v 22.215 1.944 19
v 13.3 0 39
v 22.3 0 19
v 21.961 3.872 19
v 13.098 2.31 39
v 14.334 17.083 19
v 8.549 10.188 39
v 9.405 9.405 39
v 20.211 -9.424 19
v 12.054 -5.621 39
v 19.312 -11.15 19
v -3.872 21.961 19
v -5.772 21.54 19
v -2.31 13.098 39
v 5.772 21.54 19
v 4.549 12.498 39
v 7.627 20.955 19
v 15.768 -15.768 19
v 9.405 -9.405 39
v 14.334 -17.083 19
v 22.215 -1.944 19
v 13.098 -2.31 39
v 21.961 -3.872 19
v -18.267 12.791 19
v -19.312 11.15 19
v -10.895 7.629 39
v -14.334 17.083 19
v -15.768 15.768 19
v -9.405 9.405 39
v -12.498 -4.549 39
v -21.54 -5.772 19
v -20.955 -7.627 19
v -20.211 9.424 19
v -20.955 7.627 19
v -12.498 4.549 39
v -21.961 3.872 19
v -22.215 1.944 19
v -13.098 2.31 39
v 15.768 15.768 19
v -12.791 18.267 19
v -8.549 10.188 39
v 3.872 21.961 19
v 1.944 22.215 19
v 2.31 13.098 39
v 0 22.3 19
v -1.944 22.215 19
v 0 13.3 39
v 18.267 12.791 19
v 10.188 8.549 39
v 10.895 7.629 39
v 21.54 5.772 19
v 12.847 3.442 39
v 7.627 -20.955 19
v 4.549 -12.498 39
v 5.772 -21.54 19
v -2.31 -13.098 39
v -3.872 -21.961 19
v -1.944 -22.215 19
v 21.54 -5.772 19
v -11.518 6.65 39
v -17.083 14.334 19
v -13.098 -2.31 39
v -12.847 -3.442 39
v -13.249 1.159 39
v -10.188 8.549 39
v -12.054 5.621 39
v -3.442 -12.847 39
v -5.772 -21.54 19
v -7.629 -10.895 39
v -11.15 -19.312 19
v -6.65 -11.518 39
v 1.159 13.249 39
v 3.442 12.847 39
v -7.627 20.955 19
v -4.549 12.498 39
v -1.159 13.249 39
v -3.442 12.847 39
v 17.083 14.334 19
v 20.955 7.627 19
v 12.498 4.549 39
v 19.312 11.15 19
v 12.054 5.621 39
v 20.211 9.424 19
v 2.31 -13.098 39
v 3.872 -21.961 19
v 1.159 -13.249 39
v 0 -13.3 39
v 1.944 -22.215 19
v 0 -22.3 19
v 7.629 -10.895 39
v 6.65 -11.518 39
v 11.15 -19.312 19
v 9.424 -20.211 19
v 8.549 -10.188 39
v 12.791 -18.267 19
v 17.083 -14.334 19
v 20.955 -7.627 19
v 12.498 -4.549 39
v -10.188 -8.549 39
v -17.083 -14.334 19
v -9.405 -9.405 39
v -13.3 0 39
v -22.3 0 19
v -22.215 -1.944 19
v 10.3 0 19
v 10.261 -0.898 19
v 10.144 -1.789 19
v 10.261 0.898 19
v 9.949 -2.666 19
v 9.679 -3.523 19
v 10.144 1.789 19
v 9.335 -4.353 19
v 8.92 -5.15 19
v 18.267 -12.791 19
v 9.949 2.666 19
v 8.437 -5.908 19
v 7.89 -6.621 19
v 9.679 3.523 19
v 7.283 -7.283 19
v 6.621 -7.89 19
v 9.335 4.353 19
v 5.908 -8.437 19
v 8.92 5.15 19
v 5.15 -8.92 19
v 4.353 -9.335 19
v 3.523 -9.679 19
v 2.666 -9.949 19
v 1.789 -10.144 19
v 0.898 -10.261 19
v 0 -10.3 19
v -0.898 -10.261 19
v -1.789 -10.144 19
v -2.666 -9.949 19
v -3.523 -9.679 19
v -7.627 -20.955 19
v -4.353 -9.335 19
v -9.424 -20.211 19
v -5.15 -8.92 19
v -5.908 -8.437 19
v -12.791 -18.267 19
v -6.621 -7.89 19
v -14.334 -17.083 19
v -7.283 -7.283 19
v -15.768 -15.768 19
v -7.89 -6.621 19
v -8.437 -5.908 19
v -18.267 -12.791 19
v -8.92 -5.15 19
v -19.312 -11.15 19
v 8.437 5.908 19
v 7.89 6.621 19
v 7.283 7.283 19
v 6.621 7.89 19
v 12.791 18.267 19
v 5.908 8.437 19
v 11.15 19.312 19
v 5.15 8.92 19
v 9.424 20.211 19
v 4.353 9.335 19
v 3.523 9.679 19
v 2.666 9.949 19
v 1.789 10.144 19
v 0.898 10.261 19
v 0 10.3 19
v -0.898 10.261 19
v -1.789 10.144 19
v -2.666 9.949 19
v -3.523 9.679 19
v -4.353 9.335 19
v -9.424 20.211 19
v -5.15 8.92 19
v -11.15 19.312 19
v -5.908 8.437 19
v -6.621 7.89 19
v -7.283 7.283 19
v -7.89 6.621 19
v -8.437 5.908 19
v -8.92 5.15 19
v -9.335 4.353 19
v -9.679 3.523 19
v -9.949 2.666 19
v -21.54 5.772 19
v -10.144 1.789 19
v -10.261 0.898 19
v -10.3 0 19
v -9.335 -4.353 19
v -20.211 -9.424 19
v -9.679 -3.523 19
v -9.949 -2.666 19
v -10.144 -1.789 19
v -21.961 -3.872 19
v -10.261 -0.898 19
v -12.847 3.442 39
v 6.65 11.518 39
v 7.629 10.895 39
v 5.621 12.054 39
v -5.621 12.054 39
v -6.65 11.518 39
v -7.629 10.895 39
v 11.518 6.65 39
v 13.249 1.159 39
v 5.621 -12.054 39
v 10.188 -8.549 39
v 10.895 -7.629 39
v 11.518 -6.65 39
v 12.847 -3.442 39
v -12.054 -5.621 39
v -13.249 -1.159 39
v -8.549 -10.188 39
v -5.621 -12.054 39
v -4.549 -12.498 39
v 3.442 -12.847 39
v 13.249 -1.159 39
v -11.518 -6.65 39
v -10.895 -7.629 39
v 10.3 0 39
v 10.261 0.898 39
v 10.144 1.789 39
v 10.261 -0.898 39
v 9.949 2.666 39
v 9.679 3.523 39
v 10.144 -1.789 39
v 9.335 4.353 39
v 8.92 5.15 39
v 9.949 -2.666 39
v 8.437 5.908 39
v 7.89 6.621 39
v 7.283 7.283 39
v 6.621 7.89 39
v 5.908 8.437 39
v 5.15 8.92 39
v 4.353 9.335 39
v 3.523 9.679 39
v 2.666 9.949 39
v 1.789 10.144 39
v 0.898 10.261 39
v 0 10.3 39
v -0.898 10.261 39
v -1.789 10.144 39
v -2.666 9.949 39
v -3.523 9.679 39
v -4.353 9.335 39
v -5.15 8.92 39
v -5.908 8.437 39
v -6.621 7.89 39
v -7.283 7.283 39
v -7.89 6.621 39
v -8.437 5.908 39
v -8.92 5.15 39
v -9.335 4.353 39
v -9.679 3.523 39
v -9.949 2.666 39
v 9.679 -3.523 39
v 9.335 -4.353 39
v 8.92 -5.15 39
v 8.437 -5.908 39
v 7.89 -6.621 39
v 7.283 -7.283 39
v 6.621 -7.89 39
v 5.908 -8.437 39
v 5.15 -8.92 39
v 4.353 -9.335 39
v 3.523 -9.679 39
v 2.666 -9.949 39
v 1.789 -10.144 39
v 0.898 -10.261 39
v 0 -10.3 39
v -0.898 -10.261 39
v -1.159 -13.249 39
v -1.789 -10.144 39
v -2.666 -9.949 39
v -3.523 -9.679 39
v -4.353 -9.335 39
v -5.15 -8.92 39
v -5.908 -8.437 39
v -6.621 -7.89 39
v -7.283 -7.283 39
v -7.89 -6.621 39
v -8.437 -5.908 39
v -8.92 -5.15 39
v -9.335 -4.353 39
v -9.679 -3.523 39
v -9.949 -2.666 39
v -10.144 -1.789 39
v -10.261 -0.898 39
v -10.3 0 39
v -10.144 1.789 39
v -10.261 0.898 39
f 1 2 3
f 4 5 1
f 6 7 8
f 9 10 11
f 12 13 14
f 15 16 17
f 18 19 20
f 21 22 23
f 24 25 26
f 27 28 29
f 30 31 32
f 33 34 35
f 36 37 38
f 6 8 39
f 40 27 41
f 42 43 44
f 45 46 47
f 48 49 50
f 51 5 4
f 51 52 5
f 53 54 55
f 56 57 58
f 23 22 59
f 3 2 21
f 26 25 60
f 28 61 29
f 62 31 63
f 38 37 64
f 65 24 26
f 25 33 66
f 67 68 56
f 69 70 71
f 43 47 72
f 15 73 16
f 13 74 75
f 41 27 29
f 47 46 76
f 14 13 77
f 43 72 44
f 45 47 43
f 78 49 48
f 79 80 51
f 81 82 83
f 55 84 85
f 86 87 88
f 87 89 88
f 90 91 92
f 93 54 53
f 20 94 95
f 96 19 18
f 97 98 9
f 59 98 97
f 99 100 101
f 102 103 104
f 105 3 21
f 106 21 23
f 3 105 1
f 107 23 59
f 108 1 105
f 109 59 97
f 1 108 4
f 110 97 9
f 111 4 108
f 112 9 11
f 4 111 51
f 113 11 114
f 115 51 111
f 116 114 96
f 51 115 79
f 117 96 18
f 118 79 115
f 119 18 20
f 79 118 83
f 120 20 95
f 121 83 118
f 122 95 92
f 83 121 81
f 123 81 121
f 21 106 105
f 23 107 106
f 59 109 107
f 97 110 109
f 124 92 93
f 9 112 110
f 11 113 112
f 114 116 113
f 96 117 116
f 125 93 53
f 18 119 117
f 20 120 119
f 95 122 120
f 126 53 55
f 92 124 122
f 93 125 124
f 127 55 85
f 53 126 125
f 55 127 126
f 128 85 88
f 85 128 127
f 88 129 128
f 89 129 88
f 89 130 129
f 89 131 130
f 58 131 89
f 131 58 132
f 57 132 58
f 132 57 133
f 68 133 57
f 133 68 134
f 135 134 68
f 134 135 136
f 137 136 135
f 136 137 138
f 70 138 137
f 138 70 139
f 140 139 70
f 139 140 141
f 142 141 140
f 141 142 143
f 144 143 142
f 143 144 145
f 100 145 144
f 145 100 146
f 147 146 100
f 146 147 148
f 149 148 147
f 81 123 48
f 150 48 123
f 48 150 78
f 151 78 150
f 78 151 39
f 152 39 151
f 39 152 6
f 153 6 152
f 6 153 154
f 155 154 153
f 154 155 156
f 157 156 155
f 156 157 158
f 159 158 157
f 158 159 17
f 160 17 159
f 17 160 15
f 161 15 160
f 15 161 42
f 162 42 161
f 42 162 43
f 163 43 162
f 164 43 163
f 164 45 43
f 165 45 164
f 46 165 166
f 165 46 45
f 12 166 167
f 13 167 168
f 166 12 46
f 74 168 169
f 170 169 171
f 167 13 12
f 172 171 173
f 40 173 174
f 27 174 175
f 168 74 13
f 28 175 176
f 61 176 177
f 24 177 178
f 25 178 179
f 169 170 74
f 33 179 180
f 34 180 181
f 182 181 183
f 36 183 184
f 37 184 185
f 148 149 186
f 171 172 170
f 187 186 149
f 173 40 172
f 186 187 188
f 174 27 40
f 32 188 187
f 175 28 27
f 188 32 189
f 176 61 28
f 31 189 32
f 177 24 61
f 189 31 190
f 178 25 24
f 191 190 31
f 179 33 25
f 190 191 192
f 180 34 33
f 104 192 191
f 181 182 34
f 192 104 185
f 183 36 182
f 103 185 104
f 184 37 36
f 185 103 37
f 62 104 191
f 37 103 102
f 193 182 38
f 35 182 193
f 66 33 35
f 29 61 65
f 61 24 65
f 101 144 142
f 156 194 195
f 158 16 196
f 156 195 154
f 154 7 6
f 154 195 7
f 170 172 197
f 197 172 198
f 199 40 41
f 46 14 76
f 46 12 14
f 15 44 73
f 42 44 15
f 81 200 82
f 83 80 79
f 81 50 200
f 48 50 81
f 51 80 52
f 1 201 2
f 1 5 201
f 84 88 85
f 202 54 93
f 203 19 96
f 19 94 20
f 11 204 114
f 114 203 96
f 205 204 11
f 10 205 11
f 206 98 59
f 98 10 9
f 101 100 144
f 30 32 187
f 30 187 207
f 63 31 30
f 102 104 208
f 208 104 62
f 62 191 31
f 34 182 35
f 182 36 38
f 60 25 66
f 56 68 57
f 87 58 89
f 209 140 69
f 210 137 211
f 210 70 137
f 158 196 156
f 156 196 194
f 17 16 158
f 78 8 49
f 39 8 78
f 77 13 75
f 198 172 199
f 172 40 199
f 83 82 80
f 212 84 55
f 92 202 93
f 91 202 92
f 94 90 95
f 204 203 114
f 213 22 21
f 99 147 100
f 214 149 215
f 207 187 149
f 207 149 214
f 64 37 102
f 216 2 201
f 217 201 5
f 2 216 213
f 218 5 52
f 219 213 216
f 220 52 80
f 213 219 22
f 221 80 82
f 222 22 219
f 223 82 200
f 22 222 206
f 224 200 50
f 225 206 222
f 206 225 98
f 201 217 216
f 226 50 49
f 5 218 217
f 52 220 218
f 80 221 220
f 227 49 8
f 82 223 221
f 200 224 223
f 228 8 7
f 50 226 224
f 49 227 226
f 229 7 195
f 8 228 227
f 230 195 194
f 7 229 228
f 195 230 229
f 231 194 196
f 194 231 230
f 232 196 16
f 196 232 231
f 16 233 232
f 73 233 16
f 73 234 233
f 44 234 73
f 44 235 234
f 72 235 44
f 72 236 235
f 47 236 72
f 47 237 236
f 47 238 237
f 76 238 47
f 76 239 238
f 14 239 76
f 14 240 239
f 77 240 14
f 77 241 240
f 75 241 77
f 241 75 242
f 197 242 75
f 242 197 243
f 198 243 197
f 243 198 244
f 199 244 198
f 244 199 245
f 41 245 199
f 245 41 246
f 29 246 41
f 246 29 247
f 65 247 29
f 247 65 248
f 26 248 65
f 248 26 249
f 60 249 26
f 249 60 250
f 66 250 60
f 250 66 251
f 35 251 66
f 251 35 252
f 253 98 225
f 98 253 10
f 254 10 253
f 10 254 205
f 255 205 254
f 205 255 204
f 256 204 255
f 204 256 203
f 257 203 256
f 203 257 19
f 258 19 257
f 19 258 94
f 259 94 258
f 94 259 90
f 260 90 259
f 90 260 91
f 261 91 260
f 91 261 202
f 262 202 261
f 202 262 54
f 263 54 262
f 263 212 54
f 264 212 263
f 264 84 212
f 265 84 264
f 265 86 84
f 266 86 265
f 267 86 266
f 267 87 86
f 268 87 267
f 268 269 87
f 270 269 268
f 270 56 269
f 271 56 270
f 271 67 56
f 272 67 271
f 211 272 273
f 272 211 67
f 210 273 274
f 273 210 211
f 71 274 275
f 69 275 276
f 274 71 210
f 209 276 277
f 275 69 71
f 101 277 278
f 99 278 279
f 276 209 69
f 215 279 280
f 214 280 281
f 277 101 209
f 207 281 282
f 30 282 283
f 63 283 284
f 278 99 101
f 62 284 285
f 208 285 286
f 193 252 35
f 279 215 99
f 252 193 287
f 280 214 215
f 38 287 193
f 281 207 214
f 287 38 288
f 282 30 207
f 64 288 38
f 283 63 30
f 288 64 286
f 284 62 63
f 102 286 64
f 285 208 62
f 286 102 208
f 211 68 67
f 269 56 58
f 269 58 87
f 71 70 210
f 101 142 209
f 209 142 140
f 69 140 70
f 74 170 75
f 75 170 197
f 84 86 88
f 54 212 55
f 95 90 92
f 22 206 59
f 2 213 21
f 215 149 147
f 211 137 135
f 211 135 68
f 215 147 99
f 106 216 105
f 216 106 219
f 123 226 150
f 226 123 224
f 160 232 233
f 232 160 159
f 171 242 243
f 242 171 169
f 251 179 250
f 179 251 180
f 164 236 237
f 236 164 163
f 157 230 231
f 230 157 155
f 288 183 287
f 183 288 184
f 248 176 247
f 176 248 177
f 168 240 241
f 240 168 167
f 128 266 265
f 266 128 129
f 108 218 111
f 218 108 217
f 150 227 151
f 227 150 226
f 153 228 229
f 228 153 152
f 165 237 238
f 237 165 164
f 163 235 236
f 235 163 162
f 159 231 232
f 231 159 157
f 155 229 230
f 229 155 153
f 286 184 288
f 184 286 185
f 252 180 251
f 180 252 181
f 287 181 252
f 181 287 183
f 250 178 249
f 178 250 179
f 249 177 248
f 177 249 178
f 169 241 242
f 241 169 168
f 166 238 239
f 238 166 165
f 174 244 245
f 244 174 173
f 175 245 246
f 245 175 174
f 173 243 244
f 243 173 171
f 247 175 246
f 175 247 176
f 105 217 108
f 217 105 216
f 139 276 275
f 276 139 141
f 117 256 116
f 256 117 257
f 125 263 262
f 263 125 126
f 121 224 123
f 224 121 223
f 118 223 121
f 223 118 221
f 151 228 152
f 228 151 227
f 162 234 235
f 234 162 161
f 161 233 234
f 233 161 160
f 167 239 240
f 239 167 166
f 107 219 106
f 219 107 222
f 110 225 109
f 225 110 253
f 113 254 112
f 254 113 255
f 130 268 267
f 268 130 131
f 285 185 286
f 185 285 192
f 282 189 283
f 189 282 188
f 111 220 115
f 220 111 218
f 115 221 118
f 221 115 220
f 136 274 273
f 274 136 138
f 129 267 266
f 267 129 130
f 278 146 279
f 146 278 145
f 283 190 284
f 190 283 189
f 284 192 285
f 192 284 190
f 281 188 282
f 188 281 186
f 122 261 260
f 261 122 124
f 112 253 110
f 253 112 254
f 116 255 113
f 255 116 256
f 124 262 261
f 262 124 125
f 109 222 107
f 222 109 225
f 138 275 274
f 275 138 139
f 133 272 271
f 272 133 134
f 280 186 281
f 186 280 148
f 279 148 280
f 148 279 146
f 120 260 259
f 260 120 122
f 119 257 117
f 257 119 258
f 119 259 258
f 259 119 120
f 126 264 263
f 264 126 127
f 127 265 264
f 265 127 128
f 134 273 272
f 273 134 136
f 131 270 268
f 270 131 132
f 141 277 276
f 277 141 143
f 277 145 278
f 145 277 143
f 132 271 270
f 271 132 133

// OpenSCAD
//General
$fn=72;
tolerance = 0.6;
wall = 2;

// Pole Bracket
r_pole = 10 + tolerance/2;
r_poleWrapper = r_pole + wall+1;
h_poleWrapper = 20; // Full size 80

// Fan head bracket
w_slit = 2;
r_fanHeadBracket = (40+tolerance)/2; // Actual bar diameter is 3.7-3.8mm
h_fanHeadBracket = 3;

z_poleWrapper = 3; // Pole Bracket

// Fin shape of fan
w = 0.5; // width of each slice in curve
depth_fanHeadBracketFin = 8; // how deep curve is (or how fat)
translate([0,0,16]) {
  // fanHeadBracket();
  translate([0,0,z_poleWrapper])
  poleBracket();
}

module poleBracket() {
  difference(){
    cylinder(r1=r_fanHeadBracket+wall, r2=r_poleWrapper, h=h_poleWrapper);
    cylinder(r=r_pole, h=h_poleWrapper);
  }
}

module fanHeadBracket() {
  difference() {
    union() {
      cylinder(r=r_fanHeadBracket, h=h_fanHeadBracket);
      // Fan head bracket wall
      cylinder(r=r_fanHeadBracket+2, h=h_fanHeadBracket);
      // Fan head bracket fins
      fanHeadBracketFin();
      rotate([0,0,90])
      fanHeadBracketFin();
      rotate([0,0,180])
      fanHeadBracketFin();
      rotate([0,0,270])
      fanHeadBracketFin();
    }
    // cylinder(r=r_fanHeadBracket-wall, h=h_fanHeadBracket);
    // Slit in ring
    // translate([0,-w_slit/2,0])
    // rotate([0,0,-47.5])
    // cube([r_fanHeadBracket*3, w_slit, h_fanHeadBracket]);
    // Under fan head, makes circular clearing
    color("blue")
    translate([0,0,-h_fanHeadBracket*10])
    cylinder(r=r_fanHeadBracket, h=h_fanHeadBracket*10);
  }
}

module fanHeadBracketFin() {
  z_fin_offset = 3; // z offset of fins
  a = 28; // wideness/2
  b = 11+z_fin_offset; // height/2
  h = 1; // height of slices in curve
  w_bladeHook = 5;
  h_bladeHook = 5;
  h_bladeHookSlot = 3.5;
  translate([-a/2,-r_fanHeadBracket+depth_fanHeadBracketFin/2,z_fin_offset]){
    rotate([180,0,0])
    hull() {
      fanBladeHullStick();
      for(x=[0:7:a]) {
        y = sqrt((pow(a*b,2)-pow(b*x,2))/pow(a,2));
        translate([x,0,y])
        fanBladeHullStick();
      }
    }
    translate([0, -depth_fanHeadBracketFin+2, -b-w/2-h_bladeHook])
    color("red")
    difference() {
      cube([w_bladeHook, depth_fanHeadBracketFin, h_bladeHook]);
      translate([wall+1, 0, (h_bladeHook -h_bladeHookSlot)])
      cube([w_bladeHook, depth_fanHeadBracketFin, h_bladeHookSlot]);
    }
  }
}

module fanBladeHullStick() {
  r = w/2;
  translate([r,-depth_fanHeadBracketFin/2,r])
  rotate([-90,0,0])
  cylinder(r=r, h=depth_fanHeadBracketFin+2);
}
